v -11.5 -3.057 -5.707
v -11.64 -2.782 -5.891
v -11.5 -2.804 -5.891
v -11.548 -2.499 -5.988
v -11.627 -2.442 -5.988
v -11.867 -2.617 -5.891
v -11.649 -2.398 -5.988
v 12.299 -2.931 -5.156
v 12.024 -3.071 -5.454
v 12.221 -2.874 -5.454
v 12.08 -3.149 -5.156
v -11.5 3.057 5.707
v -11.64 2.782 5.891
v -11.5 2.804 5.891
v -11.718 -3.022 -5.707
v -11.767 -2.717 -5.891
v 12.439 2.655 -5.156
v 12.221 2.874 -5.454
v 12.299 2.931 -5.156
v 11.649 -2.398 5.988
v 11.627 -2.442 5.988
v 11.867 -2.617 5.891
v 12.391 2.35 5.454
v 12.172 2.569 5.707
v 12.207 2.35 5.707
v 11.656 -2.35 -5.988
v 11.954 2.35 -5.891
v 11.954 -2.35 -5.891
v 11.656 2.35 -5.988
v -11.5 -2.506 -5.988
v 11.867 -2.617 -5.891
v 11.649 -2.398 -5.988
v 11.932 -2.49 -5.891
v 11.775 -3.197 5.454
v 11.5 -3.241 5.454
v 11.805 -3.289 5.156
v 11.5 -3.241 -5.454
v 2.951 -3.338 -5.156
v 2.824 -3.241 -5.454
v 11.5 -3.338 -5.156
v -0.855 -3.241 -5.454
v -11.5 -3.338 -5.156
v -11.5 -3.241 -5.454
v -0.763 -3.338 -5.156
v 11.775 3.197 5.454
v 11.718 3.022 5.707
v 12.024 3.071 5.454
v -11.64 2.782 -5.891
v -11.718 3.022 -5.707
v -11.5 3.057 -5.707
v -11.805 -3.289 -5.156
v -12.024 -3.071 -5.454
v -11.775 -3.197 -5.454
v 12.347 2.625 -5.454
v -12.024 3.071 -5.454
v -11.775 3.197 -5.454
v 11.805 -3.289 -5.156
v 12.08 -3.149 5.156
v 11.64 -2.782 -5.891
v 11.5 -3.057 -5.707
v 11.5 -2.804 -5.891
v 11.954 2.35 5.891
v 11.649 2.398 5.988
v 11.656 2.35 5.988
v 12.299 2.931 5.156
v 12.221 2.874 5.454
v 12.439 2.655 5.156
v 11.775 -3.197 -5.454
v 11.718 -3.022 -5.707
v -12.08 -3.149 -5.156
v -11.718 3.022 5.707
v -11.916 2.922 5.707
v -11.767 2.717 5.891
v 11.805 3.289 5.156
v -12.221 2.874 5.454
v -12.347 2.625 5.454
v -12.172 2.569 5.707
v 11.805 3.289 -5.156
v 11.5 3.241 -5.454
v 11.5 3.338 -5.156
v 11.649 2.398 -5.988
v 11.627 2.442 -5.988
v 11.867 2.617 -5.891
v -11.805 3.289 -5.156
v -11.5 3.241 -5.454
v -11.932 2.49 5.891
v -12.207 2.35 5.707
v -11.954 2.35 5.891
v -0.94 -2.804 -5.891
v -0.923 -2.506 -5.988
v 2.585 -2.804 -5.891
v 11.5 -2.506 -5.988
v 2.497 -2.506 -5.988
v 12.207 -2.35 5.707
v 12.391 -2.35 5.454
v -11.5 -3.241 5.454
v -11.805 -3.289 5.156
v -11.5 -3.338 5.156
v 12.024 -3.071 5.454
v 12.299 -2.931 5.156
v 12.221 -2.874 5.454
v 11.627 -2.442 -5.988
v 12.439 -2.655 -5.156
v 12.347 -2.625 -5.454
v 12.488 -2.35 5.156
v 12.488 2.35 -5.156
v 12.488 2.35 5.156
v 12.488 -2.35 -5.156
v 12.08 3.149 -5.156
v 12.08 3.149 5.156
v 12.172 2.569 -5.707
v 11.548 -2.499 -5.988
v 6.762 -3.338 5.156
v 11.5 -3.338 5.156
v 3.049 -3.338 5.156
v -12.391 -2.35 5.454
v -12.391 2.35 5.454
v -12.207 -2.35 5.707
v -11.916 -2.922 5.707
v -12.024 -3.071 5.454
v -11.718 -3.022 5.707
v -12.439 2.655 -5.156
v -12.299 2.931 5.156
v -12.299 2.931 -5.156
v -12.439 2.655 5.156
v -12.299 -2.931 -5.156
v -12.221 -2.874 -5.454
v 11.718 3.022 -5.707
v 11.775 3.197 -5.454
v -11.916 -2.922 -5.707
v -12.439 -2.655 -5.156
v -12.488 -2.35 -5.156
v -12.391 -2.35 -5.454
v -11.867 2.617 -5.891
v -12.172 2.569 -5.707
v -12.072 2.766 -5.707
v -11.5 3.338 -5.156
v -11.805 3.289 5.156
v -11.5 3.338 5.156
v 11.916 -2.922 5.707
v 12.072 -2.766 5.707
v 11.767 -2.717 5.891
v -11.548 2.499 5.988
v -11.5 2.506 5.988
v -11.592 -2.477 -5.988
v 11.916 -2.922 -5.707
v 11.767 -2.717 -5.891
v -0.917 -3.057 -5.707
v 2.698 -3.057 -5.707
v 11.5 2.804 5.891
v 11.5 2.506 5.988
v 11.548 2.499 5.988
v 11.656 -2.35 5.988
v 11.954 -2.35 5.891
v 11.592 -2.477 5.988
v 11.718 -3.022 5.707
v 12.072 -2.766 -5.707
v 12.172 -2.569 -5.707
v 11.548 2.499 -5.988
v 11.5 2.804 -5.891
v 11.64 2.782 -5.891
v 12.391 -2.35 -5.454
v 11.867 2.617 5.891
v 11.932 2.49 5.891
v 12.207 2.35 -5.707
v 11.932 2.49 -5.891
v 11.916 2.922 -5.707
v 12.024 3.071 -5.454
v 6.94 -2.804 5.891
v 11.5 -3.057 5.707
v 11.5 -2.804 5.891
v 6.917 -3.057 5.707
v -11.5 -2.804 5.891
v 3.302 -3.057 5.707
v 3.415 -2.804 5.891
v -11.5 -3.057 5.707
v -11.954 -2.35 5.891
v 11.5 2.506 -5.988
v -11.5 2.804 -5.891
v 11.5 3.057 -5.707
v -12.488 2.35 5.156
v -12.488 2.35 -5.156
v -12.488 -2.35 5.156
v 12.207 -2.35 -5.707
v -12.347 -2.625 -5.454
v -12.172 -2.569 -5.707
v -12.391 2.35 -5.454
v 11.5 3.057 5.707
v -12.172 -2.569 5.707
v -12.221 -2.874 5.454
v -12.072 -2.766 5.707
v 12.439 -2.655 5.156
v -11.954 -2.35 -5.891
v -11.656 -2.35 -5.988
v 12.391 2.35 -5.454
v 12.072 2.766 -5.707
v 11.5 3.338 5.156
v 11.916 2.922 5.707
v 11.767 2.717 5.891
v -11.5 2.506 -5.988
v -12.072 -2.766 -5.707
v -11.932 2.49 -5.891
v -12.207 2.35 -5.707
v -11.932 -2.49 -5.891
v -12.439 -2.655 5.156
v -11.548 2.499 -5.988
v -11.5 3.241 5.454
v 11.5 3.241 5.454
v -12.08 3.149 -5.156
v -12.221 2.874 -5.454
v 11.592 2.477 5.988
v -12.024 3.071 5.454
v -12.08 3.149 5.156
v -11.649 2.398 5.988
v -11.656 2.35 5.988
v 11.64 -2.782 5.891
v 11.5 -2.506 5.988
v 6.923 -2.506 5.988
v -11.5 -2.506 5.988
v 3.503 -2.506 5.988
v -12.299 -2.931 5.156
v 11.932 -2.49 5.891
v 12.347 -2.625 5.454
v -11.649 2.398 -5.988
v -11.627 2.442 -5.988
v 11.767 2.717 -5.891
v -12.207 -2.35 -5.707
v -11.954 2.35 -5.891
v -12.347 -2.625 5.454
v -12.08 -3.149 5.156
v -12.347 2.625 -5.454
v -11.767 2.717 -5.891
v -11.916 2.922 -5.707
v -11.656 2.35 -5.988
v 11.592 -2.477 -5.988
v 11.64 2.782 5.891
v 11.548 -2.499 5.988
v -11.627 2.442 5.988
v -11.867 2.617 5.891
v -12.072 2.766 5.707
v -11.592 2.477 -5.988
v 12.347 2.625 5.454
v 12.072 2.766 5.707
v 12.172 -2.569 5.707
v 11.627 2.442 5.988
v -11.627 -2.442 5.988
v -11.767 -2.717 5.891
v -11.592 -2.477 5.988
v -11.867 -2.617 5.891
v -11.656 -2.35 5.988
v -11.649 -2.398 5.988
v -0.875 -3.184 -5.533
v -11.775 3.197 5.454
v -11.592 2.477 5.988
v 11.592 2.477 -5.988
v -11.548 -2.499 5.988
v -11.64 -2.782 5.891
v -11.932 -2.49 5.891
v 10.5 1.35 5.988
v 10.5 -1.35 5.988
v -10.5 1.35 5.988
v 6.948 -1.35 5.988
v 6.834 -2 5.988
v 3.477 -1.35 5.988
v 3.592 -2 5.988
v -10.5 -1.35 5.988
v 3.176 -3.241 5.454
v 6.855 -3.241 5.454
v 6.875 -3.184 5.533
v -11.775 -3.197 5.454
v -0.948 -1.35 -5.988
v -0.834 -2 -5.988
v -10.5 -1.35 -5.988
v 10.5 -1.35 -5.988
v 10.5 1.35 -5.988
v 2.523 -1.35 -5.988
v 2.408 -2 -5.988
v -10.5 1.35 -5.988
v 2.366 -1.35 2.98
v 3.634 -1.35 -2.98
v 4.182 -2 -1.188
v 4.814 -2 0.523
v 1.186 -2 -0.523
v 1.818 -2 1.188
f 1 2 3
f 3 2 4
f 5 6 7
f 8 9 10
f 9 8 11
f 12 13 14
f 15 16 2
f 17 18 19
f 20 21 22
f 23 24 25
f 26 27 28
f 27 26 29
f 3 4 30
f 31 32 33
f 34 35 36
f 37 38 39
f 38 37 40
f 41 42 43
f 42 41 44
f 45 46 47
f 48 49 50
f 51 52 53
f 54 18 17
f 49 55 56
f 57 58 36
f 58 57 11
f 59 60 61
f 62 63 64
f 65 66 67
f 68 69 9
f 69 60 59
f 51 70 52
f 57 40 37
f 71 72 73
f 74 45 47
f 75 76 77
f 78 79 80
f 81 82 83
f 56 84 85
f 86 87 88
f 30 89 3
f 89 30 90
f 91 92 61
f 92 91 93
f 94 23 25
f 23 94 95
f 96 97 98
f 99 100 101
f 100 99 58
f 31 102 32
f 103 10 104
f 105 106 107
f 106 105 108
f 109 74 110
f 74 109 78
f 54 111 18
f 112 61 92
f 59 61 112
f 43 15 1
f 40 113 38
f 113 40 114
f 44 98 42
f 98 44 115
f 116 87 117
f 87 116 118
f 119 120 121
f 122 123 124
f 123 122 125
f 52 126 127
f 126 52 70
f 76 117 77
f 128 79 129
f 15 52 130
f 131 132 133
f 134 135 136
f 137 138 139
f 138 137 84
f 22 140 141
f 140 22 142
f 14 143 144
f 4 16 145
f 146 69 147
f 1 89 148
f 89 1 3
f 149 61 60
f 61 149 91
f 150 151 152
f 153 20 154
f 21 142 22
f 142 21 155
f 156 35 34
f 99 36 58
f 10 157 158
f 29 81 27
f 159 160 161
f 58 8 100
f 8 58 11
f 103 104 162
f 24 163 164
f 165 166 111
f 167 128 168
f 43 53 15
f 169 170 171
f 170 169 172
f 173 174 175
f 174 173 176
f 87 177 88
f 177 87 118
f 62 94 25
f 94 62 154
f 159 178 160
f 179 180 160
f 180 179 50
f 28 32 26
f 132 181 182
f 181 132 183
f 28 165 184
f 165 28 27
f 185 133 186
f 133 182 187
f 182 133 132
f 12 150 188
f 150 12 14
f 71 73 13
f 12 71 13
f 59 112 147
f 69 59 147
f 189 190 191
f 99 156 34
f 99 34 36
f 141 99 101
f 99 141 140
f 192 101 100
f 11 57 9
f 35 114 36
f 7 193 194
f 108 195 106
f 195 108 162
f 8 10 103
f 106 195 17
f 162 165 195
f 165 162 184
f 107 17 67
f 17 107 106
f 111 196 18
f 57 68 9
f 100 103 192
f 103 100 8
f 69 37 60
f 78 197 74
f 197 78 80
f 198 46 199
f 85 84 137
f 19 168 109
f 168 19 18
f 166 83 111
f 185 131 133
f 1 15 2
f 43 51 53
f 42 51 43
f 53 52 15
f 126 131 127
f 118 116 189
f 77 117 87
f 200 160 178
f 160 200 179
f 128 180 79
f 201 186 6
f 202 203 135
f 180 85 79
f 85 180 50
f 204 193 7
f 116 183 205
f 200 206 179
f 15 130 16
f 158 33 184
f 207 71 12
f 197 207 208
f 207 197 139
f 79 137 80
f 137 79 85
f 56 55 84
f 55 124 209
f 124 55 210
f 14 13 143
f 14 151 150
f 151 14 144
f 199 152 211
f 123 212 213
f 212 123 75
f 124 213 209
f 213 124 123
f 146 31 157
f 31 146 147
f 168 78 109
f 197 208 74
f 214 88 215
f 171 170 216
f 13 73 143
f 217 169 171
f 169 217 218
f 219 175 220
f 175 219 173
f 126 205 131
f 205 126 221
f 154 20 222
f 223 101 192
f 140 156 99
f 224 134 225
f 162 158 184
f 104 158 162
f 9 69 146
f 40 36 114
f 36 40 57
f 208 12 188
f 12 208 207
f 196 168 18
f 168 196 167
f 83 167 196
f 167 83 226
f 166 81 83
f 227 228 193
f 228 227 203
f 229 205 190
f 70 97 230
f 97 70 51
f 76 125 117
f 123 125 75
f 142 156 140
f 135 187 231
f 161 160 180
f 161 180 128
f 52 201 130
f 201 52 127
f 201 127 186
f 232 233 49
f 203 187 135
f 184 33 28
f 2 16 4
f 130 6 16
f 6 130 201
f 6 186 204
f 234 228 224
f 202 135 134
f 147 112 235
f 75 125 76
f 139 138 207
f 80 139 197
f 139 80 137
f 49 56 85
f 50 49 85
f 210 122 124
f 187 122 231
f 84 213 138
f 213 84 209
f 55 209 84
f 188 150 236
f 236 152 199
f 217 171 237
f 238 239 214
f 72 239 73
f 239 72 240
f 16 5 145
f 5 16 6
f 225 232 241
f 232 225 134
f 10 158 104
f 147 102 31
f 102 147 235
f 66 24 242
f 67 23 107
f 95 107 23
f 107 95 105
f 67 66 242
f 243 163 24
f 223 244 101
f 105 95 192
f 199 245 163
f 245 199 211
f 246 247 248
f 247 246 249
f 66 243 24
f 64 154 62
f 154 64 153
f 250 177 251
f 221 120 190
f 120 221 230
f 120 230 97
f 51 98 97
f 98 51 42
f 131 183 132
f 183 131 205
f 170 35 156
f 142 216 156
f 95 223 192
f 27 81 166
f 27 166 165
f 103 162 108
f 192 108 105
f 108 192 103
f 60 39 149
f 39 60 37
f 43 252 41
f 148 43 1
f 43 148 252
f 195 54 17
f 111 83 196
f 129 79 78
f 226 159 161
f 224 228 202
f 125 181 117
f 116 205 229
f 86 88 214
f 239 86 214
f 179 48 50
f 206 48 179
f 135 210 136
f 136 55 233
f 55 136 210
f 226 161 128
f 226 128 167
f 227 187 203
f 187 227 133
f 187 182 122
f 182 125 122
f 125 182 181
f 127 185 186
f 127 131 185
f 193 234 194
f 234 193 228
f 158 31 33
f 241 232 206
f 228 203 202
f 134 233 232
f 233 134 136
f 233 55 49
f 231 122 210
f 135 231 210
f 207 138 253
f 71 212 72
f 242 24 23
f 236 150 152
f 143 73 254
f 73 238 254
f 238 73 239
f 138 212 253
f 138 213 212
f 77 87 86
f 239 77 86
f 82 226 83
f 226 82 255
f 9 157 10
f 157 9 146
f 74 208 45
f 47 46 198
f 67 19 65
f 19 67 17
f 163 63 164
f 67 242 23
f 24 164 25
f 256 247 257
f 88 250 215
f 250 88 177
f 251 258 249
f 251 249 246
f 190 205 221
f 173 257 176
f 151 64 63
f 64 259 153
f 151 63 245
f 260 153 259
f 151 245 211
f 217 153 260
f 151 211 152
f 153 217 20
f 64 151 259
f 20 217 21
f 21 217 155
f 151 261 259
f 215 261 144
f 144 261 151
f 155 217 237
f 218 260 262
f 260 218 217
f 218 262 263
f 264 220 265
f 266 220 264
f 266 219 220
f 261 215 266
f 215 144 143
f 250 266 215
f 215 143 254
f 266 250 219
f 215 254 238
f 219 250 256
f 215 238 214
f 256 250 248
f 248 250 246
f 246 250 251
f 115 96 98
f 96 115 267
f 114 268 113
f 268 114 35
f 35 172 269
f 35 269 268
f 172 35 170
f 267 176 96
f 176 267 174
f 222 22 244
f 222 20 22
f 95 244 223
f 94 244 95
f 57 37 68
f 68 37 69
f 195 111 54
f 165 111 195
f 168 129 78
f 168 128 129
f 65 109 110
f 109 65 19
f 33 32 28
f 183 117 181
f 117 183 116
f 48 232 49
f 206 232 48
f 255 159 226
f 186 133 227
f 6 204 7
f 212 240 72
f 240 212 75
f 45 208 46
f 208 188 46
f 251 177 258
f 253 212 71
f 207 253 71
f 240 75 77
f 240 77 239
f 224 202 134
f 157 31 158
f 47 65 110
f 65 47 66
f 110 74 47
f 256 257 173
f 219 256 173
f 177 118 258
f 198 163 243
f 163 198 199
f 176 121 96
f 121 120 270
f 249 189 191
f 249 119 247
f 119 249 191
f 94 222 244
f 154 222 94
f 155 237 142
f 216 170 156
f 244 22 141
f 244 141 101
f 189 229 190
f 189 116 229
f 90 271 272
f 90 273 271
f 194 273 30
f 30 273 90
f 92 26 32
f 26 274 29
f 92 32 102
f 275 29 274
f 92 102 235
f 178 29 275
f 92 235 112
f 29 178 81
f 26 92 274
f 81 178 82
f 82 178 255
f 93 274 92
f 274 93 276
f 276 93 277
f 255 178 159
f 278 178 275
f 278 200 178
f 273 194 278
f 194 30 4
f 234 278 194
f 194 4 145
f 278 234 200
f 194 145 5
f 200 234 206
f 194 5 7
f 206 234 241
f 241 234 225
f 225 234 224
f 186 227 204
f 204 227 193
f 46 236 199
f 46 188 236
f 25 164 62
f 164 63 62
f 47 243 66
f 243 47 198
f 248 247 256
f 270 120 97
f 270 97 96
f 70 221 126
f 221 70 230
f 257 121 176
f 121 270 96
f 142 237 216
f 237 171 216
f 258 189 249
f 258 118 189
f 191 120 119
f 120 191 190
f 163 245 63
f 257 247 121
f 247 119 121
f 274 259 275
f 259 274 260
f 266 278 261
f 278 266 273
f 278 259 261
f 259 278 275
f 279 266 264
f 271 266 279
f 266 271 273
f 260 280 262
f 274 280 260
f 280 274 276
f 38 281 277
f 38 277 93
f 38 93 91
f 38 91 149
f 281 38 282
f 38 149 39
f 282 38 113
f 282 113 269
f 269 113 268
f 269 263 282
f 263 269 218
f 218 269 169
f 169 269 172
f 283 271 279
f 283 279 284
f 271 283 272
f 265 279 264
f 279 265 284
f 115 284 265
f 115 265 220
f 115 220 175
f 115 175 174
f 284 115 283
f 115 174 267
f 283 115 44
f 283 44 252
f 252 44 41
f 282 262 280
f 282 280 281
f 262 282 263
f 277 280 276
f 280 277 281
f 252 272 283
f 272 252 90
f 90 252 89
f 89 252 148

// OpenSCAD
x=20.5 + 0.5;
y=2.5 + 0.2;
z=10;

difference() {
    // body
    minkowski() {
        cube([x+2, y+2, z], center=true);
        sphere(r=1, $fn=20);
    }

    // inner hole
    cube([x, y, z+4], center=true);

    // opening
    translate([3, -2, 0])
        rotate([0, 20, 10])
        cube([3, 4, z+4], center=true);
    translate([3, -2, 0])
        rotate([0, 20, -10])
        cube([3, 4, z+4], center=true);
}
